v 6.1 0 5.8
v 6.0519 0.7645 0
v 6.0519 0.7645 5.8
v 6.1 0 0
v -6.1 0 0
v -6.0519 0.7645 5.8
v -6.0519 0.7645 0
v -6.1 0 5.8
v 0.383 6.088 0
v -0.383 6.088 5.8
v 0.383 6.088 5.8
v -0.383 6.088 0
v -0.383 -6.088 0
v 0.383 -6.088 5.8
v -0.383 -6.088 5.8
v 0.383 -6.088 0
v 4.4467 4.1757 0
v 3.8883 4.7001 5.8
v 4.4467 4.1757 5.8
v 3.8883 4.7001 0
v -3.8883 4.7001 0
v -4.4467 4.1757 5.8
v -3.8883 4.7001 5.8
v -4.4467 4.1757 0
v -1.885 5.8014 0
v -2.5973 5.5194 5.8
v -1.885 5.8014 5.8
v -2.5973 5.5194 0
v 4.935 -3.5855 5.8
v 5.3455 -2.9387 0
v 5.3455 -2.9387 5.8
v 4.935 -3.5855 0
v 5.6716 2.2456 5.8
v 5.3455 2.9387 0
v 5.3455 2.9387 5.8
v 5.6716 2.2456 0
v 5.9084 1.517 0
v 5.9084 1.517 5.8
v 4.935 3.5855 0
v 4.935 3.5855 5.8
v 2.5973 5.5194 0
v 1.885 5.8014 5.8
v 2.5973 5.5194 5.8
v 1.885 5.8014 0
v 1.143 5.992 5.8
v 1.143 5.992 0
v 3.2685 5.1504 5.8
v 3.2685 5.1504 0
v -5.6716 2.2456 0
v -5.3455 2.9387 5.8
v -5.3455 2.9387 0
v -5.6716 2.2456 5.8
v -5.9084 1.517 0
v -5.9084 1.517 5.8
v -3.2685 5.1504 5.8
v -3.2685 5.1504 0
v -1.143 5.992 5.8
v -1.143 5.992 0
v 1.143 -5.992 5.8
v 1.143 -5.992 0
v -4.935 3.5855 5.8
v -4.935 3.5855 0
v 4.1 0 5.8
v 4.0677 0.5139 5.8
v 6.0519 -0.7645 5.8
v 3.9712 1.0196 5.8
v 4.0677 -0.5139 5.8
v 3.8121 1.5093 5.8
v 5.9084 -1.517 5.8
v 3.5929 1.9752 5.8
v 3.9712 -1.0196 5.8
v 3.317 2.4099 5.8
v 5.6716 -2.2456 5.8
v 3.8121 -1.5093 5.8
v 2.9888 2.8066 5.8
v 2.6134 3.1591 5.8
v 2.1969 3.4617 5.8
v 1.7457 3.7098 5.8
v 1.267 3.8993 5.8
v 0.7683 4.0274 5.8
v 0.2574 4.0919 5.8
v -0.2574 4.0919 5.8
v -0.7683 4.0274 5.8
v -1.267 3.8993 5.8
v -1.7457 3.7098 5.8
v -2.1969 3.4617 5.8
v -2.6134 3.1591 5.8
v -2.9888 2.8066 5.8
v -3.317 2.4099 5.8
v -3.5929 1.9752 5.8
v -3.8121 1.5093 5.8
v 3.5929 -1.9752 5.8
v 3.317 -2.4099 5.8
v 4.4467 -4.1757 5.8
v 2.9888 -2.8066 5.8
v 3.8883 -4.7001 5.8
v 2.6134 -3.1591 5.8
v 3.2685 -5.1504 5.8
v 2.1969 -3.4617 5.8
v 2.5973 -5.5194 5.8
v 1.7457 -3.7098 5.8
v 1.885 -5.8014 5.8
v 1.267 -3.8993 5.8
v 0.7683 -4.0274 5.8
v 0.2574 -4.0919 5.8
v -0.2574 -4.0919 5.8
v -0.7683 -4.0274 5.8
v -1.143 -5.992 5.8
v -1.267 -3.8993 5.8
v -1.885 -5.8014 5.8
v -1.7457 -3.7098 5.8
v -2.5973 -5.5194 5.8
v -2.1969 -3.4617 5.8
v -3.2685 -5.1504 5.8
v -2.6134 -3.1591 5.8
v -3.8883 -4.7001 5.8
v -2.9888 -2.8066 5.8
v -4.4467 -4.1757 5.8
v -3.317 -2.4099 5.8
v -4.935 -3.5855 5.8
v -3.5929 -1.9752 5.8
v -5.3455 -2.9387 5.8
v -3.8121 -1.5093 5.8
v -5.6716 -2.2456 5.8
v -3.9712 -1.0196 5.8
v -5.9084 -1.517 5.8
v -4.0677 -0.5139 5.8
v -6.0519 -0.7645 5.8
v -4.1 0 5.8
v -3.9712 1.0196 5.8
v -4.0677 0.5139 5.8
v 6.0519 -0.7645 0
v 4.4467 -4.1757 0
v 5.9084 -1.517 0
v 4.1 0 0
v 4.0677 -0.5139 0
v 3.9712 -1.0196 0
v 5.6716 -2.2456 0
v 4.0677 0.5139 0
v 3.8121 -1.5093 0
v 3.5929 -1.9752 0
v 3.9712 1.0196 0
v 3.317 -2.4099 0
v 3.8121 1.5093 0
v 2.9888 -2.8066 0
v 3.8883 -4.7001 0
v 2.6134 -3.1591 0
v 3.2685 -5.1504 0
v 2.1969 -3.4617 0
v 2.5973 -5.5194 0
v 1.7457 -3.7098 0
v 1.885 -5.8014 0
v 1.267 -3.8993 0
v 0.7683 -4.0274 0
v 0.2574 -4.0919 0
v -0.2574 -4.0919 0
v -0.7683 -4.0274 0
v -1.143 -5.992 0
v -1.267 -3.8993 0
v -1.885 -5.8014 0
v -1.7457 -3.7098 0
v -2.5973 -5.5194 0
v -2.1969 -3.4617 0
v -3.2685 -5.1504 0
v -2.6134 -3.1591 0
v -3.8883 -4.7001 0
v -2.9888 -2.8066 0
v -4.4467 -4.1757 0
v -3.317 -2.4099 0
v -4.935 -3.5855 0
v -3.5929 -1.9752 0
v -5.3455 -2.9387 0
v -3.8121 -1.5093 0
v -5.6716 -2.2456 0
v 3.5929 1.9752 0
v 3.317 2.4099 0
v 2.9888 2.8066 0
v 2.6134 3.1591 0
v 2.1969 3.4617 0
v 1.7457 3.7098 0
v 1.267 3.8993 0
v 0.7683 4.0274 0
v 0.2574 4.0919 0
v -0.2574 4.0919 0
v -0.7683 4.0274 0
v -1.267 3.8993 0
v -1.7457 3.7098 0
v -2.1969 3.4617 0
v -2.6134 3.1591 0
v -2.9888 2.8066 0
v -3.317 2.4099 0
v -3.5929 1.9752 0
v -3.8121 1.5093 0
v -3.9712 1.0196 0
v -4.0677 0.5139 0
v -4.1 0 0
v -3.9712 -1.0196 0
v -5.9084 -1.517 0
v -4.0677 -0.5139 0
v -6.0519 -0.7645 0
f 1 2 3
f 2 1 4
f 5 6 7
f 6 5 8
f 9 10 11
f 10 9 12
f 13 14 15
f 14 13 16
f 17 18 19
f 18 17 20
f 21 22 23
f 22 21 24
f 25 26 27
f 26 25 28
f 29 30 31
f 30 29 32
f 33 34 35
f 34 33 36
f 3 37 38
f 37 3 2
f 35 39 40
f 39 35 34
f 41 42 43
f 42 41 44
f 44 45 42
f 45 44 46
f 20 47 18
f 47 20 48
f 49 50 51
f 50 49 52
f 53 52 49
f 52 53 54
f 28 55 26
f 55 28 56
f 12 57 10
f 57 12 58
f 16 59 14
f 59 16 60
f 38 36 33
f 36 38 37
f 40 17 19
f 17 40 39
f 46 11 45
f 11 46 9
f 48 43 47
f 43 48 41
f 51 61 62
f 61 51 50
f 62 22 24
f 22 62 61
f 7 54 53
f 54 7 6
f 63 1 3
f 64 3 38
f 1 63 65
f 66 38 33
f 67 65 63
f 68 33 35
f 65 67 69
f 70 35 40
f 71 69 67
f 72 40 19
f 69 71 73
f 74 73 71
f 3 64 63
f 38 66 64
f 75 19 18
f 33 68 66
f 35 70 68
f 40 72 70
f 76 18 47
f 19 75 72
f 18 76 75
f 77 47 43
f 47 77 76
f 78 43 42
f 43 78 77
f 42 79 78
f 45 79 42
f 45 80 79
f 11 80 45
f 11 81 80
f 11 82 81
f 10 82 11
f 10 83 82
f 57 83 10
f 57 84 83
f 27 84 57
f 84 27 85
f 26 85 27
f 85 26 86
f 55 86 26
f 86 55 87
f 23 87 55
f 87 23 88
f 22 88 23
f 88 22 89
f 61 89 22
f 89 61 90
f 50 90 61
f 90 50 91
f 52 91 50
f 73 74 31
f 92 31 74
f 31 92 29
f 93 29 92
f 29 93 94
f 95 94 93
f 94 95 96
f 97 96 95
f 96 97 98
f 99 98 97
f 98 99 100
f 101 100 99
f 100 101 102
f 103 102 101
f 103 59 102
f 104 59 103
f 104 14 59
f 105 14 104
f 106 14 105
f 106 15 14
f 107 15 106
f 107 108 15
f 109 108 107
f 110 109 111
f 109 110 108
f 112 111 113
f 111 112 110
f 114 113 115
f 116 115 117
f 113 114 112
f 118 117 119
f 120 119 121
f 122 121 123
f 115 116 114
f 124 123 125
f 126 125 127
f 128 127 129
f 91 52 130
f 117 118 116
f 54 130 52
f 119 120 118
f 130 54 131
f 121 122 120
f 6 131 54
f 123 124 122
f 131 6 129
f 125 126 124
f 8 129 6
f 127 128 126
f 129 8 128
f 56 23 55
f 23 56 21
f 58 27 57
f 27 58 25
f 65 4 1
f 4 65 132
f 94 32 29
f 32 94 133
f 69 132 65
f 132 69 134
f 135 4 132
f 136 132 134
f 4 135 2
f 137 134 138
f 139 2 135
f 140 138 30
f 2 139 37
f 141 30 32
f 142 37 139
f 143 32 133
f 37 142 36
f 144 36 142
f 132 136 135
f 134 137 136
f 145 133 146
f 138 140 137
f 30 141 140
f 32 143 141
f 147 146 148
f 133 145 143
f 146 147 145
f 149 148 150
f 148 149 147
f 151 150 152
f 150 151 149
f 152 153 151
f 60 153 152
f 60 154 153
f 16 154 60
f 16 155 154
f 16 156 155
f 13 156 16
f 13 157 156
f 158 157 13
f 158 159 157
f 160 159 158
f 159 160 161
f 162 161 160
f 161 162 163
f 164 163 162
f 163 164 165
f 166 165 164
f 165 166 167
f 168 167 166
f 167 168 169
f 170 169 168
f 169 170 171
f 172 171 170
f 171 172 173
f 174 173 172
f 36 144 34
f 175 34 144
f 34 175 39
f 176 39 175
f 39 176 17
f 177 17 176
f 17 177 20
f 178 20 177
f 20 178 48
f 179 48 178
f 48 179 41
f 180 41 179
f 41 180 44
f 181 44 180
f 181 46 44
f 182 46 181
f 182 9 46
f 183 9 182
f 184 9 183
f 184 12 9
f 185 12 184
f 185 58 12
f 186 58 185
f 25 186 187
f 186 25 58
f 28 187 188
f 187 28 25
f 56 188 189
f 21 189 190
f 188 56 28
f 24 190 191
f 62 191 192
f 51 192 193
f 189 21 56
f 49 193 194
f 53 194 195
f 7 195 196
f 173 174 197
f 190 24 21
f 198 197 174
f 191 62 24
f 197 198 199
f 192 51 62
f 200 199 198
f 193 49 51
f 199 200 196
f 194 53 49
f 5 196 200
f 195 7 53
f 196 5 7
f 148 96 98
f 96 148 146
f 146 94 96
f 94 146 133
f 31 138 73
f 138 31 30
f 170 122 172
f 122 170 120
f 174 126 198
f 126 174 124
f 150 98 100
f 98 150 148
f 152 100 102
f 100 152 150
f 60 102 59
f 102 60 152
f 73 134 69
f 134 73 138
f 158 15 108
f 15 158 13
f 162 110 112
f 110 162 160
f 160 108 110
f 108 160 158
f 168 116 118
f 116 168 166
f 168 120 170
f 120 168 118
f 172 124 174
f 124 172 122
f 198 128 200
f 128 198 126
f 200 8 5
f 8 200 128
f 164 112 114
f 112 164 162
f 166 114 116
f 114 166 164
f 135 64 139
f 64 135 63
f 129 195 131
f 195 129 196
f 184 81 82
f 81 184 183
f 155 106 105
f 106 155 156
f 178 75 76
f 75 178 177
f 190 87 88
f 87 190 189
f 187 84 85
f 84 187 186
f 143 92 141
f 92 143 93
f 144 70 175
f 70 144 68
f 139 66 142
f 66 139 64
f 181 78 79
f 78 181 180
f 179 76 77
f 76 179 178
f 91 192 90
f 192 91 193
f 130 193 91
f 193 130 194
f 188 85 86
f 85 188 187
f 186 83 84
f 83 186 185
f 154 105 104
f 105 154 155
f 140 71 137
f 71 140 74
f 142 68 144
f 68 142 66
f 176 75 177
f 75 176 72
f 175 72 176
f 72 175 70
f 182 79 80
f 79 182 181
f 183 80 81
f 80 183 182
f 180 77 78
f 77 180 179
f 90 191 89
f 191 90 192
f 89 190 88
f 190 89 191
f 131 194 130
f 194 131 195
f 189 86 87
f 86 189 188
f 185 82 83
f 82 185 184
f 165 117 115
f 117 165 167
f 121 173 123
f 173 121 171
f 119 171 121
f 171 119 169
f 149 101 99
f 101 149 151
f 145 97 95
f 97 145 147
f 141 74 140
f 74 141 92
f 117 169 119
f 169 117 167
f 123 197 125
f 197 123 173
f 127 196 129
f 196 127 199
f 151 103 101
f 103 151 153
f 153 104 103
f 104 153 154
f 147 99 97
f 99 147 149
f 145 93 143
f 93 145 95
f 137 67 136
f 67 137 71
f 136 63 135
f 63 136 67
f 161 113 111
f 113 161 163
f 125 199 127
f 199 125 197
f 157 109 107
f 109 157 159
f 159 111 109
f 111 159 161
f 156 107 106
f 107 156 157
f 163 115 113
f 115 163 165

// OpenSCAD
// file: ../src/888_1003.scad
include <../parameters.scad>

module 888_1003() {
    difference() {
        cylinder(d=8+0.2+4, h=20-608_bearing_thickness*2, $fn=50);
        
        translate([0, 0, -ALU_profile_holder_wall_thickness])
        cylinder(d=8+0.2, h=ALU_profile_width+ALU_profile_holder_wall_thickness*4, $fn=50);
    }
}

888_1003();
// file: ../parameters.scad
maximum_printable_size = 150;

layer_thickness = 0.3;
global_clearance = 0.5;


//Screw diameter and nut for M10 [mm]
M10_screw_diameter = 10.4;
M10_head_height = 10;
M10_head_diameter = 16+0.5;
M10_nut_height = 10.5;
M10_nut_diameter = 25.5;
M10_nut_pocket = 22.3;

//Screw diameter for M8 [mm]
M8_screw_diameter = 8.6;
M8_head_height = 8;
M8_head_diameter = 13.5;
M8_nut_height = 7.5;
M8_square_nut_thin_height = 4.5;
M8_nut_diameter = 14.4 + 0.5;
M8_nut_pocket = 13 + 0.5;
M8_washer_diameter = 16;
M8_washer_thickness = 1.5;


//Screw diameter and nut for M6 [mm]
M6_screw_diameter=6.5;
M6_head_diameter = 10+0.5;
M6_head_height = 6;
M6_nut_height = 4.9;
M6_nut_diameter = 11.8;
M6_nut_pocket = 10.4;
M6_square_nut_height = 3;
M6_square_nut_diameter = 10;
M6_washer_thickness = 1.6;

//Screw diameter and nut for M5 [mm]
M5_screw_diameter=5.5;
M5_head_height = 5;
M5_head_diameter = 13+0.5;
M5_nut_height = 4.5;
M5_nut_diameter = 9.4;
M5_nut_pocket = 8.4;

//Screw diameter and nut for M4 [mm]
M4_screw_diameter=4.5;
M4_screw_head_height = 4;
M4_nut_height = 3.2;
M4_nut_diameter = 8.4;
M4_nut_pocket = 7.5;

//Screw diameter and nut for M3 [mm]
M3_screw_diameter = 3.2;
M3_nut_height = 2.7;
M3_nut_diameter = 6.6;
M3_nut_pocket = 5.6;
M3_screw_head_height = 3;

//Screw diameter and nut for M2,5 [mm]
M2_5_screw_diameter = 2.7;
M2_5_nut_height = 2.3;
M2_5_nut_diameter = 6;
M2_5_nut_pocket = 5.5;

// kulove lozisko

bearing_efsm_08_h = 33+1;
bearing_efsm_08_m = 22;
bearing_efsm_08_db = 18;
bearing_efsm_08_ag = 10.5;
bearing_efsm_08_n = M4_screw_diameter;
bearing_efsm_08_a1 = 5.5;
bearing_efsm_08_d = 8.25;
bearing_efsm_08_B = 8; // ball height

bearing_efsm_10_h = 38+1;
bearing_efsm_10_m = 26;
bearing_efsm_10_db = 21.9;
bearing_efsm_10_ag = 12+0.2;
bearing_efsm_10_n = M5_screw_diameter;
bearing_efsm_10_a1 = 6.5;
bearing_efsm_10_d = 10.25;


bearing_efsm_12_width = 40+1;
bearing_efsm_12_h = bearing_efsm_12_width;
bearing_efsm_12_boltd = 28/2; // polovina vzdalenosti mezi srouby
bearing_efsm_12_m = bearing_efsm_12_boltd*2;
bearing_efsm_12_db = 25;
bearing_efsm_12_ag = 13;
bearing_efsm_12_a1 = 7;
bearing_efsm_12_n = M5_screw_diameter;
bearing_efsm_12_d = 12.15;
bearing_efsm_12_B = 10; // ball height
bearing_efsm_space = 1;

bearing_efsm_17_width = 54+1;
bearing_efsm_17_h = bearing_efsm_17_width;
bearing_efsm_17_boltd = 38/2; // polovina vzdalenosti mezi srouby
bearing_efsm_17_m = bearing_efsm_17_boltd*2;
bearing_efsm_17_db = 35;
bearing_efsm_17_ag = 18;
bearing_efsm_17_n = M6_screw_diameter;
bearing_efsm_17_a1 = 10;
bearing_efsm_17_B = 17; // ball height

//limcove lozisko
bearing_EFOM_10_L=26; //celkova sirka zakladny
bearing_EFOM_10_d1=10.3;//diametr otvoru real=10 mm
bearing_EFOM_10_dB=22;//diametr vystupku pro ulozeni lozika
bearing_EFOM_10_H=52;//celková delka zakladny
bearing_EFOM_10_J=36;// hole pitch
bearing_EFOM_10_A1=6.5;//vyska pouzdra
bearing_EFOM_10_Ag=12;//celkova vyska
bearing_EFOM_10_N1=5;//sirka otvoru pro sroub
bearing_EFOM_10_N2=8;//delka otvoru pro sroub
bearing_EFOM_10_m=36;//roztec der pro sroub
bearing_EFOM_10_h=9;//vyska lozika


608_bearing_outer_diameter = 22.3;
608_bearing_inner_diameter = 16;
608_bearing_thickness = 7.1;


// 20 KG servo parameters

servo_20kg_axis_offset = 9.375; // jak je osa mimo stredu
servo_20kg_body_x = 42;
servo_20kg_body_y = 21;
servo_20kg_body_z = 40;
servo_20kg_thread_x = 49/2;
servo_20kg_thread_y = 10/2;
servo_20kg_body_below = 10; // jak hluboko je tělo serva pod drzaky na srouby
servo_20kg_below = 25.8; // jak hluboko je páka serva pod drzaky na srouby

servo_20kg_bolt_d = 2.5+0.3;
servo_20kg_nut_d = 5+0.3;


//strain gauge
strain_gauge_width = 12.7;
strain_gauge_length = 75.1;
strain_gauge_screw_distance = 10;

//ALU profile
ALU_profile_width = 30.5;
ALU_profile_holder_wall_thickness = 3;
ALU_profile_groove_width = 8;

//pillow block bearing
//https://www.igus.eu/product/372
//Part no. KSTM-08
KSTM08_screws_distance = 33;         //m
KSTM08_screws_holes_diameter = 4.5;  //d2
KSTM08_flange_thickness = 6;         //h3
KSTM08_case_width = 9;               //C1
KSTM08_case_length = 47;             //a
KSTM08_ball_width = 12;              //B
KSTM08_ball_hole_diameter = 7.85;    //d1


//ložiska pro malý rotor
bearing_outer_diameter = 10.2;    // Rozměr B1 v nákresu s přídavkem na toleranci otvoru
bearing_thickness = 4;        // Rozměr B2 v nákresu
//bearing_shaft_length = 19.5;    // Rozměr B3 v nákresu, Originalni hodnota 19.5
bearing_shaft_length = 20;    // Rozměr B3 v nákresu


//parametry víčka s telemetrickou anténou
S01_sila_materialu=1.2;
S01_vyska_horni_zavit=10;
S01_hloubka_zavitu=4;
S01_prumer_vnitrni=50;
LO_spodni_prumer=17.2;
LO_vyska_bez_krytu=15;
S01_tolerance_zavit=1.5;
R01_vyska_prekryti_statoru=10;

g3_0_cone1 = 70;
g3_0_srcew_dist = 55;



// scale parameters
base_length = 500;
mid_base_width = 500;
mid_base_height = 200;
mid_base_length = 500;
mid_base_x_offset = 50;
base_mid_base_hinge_offset = 50;
tower_height = 185;
tower_angle = atan((mid_base_width/2-ALU_profile_width-10)/tower_height);
tower_arm_length = tower_height/cos(tower_angle);
tower_drag_z_offset = 22;

// calibration device parameters
calibration_arm_x_offset = 140;
calibration_arm_y_offset = 50;
// main file
include <../parameters.scad>
use <../src/888_1003.scad>

888_1003();
